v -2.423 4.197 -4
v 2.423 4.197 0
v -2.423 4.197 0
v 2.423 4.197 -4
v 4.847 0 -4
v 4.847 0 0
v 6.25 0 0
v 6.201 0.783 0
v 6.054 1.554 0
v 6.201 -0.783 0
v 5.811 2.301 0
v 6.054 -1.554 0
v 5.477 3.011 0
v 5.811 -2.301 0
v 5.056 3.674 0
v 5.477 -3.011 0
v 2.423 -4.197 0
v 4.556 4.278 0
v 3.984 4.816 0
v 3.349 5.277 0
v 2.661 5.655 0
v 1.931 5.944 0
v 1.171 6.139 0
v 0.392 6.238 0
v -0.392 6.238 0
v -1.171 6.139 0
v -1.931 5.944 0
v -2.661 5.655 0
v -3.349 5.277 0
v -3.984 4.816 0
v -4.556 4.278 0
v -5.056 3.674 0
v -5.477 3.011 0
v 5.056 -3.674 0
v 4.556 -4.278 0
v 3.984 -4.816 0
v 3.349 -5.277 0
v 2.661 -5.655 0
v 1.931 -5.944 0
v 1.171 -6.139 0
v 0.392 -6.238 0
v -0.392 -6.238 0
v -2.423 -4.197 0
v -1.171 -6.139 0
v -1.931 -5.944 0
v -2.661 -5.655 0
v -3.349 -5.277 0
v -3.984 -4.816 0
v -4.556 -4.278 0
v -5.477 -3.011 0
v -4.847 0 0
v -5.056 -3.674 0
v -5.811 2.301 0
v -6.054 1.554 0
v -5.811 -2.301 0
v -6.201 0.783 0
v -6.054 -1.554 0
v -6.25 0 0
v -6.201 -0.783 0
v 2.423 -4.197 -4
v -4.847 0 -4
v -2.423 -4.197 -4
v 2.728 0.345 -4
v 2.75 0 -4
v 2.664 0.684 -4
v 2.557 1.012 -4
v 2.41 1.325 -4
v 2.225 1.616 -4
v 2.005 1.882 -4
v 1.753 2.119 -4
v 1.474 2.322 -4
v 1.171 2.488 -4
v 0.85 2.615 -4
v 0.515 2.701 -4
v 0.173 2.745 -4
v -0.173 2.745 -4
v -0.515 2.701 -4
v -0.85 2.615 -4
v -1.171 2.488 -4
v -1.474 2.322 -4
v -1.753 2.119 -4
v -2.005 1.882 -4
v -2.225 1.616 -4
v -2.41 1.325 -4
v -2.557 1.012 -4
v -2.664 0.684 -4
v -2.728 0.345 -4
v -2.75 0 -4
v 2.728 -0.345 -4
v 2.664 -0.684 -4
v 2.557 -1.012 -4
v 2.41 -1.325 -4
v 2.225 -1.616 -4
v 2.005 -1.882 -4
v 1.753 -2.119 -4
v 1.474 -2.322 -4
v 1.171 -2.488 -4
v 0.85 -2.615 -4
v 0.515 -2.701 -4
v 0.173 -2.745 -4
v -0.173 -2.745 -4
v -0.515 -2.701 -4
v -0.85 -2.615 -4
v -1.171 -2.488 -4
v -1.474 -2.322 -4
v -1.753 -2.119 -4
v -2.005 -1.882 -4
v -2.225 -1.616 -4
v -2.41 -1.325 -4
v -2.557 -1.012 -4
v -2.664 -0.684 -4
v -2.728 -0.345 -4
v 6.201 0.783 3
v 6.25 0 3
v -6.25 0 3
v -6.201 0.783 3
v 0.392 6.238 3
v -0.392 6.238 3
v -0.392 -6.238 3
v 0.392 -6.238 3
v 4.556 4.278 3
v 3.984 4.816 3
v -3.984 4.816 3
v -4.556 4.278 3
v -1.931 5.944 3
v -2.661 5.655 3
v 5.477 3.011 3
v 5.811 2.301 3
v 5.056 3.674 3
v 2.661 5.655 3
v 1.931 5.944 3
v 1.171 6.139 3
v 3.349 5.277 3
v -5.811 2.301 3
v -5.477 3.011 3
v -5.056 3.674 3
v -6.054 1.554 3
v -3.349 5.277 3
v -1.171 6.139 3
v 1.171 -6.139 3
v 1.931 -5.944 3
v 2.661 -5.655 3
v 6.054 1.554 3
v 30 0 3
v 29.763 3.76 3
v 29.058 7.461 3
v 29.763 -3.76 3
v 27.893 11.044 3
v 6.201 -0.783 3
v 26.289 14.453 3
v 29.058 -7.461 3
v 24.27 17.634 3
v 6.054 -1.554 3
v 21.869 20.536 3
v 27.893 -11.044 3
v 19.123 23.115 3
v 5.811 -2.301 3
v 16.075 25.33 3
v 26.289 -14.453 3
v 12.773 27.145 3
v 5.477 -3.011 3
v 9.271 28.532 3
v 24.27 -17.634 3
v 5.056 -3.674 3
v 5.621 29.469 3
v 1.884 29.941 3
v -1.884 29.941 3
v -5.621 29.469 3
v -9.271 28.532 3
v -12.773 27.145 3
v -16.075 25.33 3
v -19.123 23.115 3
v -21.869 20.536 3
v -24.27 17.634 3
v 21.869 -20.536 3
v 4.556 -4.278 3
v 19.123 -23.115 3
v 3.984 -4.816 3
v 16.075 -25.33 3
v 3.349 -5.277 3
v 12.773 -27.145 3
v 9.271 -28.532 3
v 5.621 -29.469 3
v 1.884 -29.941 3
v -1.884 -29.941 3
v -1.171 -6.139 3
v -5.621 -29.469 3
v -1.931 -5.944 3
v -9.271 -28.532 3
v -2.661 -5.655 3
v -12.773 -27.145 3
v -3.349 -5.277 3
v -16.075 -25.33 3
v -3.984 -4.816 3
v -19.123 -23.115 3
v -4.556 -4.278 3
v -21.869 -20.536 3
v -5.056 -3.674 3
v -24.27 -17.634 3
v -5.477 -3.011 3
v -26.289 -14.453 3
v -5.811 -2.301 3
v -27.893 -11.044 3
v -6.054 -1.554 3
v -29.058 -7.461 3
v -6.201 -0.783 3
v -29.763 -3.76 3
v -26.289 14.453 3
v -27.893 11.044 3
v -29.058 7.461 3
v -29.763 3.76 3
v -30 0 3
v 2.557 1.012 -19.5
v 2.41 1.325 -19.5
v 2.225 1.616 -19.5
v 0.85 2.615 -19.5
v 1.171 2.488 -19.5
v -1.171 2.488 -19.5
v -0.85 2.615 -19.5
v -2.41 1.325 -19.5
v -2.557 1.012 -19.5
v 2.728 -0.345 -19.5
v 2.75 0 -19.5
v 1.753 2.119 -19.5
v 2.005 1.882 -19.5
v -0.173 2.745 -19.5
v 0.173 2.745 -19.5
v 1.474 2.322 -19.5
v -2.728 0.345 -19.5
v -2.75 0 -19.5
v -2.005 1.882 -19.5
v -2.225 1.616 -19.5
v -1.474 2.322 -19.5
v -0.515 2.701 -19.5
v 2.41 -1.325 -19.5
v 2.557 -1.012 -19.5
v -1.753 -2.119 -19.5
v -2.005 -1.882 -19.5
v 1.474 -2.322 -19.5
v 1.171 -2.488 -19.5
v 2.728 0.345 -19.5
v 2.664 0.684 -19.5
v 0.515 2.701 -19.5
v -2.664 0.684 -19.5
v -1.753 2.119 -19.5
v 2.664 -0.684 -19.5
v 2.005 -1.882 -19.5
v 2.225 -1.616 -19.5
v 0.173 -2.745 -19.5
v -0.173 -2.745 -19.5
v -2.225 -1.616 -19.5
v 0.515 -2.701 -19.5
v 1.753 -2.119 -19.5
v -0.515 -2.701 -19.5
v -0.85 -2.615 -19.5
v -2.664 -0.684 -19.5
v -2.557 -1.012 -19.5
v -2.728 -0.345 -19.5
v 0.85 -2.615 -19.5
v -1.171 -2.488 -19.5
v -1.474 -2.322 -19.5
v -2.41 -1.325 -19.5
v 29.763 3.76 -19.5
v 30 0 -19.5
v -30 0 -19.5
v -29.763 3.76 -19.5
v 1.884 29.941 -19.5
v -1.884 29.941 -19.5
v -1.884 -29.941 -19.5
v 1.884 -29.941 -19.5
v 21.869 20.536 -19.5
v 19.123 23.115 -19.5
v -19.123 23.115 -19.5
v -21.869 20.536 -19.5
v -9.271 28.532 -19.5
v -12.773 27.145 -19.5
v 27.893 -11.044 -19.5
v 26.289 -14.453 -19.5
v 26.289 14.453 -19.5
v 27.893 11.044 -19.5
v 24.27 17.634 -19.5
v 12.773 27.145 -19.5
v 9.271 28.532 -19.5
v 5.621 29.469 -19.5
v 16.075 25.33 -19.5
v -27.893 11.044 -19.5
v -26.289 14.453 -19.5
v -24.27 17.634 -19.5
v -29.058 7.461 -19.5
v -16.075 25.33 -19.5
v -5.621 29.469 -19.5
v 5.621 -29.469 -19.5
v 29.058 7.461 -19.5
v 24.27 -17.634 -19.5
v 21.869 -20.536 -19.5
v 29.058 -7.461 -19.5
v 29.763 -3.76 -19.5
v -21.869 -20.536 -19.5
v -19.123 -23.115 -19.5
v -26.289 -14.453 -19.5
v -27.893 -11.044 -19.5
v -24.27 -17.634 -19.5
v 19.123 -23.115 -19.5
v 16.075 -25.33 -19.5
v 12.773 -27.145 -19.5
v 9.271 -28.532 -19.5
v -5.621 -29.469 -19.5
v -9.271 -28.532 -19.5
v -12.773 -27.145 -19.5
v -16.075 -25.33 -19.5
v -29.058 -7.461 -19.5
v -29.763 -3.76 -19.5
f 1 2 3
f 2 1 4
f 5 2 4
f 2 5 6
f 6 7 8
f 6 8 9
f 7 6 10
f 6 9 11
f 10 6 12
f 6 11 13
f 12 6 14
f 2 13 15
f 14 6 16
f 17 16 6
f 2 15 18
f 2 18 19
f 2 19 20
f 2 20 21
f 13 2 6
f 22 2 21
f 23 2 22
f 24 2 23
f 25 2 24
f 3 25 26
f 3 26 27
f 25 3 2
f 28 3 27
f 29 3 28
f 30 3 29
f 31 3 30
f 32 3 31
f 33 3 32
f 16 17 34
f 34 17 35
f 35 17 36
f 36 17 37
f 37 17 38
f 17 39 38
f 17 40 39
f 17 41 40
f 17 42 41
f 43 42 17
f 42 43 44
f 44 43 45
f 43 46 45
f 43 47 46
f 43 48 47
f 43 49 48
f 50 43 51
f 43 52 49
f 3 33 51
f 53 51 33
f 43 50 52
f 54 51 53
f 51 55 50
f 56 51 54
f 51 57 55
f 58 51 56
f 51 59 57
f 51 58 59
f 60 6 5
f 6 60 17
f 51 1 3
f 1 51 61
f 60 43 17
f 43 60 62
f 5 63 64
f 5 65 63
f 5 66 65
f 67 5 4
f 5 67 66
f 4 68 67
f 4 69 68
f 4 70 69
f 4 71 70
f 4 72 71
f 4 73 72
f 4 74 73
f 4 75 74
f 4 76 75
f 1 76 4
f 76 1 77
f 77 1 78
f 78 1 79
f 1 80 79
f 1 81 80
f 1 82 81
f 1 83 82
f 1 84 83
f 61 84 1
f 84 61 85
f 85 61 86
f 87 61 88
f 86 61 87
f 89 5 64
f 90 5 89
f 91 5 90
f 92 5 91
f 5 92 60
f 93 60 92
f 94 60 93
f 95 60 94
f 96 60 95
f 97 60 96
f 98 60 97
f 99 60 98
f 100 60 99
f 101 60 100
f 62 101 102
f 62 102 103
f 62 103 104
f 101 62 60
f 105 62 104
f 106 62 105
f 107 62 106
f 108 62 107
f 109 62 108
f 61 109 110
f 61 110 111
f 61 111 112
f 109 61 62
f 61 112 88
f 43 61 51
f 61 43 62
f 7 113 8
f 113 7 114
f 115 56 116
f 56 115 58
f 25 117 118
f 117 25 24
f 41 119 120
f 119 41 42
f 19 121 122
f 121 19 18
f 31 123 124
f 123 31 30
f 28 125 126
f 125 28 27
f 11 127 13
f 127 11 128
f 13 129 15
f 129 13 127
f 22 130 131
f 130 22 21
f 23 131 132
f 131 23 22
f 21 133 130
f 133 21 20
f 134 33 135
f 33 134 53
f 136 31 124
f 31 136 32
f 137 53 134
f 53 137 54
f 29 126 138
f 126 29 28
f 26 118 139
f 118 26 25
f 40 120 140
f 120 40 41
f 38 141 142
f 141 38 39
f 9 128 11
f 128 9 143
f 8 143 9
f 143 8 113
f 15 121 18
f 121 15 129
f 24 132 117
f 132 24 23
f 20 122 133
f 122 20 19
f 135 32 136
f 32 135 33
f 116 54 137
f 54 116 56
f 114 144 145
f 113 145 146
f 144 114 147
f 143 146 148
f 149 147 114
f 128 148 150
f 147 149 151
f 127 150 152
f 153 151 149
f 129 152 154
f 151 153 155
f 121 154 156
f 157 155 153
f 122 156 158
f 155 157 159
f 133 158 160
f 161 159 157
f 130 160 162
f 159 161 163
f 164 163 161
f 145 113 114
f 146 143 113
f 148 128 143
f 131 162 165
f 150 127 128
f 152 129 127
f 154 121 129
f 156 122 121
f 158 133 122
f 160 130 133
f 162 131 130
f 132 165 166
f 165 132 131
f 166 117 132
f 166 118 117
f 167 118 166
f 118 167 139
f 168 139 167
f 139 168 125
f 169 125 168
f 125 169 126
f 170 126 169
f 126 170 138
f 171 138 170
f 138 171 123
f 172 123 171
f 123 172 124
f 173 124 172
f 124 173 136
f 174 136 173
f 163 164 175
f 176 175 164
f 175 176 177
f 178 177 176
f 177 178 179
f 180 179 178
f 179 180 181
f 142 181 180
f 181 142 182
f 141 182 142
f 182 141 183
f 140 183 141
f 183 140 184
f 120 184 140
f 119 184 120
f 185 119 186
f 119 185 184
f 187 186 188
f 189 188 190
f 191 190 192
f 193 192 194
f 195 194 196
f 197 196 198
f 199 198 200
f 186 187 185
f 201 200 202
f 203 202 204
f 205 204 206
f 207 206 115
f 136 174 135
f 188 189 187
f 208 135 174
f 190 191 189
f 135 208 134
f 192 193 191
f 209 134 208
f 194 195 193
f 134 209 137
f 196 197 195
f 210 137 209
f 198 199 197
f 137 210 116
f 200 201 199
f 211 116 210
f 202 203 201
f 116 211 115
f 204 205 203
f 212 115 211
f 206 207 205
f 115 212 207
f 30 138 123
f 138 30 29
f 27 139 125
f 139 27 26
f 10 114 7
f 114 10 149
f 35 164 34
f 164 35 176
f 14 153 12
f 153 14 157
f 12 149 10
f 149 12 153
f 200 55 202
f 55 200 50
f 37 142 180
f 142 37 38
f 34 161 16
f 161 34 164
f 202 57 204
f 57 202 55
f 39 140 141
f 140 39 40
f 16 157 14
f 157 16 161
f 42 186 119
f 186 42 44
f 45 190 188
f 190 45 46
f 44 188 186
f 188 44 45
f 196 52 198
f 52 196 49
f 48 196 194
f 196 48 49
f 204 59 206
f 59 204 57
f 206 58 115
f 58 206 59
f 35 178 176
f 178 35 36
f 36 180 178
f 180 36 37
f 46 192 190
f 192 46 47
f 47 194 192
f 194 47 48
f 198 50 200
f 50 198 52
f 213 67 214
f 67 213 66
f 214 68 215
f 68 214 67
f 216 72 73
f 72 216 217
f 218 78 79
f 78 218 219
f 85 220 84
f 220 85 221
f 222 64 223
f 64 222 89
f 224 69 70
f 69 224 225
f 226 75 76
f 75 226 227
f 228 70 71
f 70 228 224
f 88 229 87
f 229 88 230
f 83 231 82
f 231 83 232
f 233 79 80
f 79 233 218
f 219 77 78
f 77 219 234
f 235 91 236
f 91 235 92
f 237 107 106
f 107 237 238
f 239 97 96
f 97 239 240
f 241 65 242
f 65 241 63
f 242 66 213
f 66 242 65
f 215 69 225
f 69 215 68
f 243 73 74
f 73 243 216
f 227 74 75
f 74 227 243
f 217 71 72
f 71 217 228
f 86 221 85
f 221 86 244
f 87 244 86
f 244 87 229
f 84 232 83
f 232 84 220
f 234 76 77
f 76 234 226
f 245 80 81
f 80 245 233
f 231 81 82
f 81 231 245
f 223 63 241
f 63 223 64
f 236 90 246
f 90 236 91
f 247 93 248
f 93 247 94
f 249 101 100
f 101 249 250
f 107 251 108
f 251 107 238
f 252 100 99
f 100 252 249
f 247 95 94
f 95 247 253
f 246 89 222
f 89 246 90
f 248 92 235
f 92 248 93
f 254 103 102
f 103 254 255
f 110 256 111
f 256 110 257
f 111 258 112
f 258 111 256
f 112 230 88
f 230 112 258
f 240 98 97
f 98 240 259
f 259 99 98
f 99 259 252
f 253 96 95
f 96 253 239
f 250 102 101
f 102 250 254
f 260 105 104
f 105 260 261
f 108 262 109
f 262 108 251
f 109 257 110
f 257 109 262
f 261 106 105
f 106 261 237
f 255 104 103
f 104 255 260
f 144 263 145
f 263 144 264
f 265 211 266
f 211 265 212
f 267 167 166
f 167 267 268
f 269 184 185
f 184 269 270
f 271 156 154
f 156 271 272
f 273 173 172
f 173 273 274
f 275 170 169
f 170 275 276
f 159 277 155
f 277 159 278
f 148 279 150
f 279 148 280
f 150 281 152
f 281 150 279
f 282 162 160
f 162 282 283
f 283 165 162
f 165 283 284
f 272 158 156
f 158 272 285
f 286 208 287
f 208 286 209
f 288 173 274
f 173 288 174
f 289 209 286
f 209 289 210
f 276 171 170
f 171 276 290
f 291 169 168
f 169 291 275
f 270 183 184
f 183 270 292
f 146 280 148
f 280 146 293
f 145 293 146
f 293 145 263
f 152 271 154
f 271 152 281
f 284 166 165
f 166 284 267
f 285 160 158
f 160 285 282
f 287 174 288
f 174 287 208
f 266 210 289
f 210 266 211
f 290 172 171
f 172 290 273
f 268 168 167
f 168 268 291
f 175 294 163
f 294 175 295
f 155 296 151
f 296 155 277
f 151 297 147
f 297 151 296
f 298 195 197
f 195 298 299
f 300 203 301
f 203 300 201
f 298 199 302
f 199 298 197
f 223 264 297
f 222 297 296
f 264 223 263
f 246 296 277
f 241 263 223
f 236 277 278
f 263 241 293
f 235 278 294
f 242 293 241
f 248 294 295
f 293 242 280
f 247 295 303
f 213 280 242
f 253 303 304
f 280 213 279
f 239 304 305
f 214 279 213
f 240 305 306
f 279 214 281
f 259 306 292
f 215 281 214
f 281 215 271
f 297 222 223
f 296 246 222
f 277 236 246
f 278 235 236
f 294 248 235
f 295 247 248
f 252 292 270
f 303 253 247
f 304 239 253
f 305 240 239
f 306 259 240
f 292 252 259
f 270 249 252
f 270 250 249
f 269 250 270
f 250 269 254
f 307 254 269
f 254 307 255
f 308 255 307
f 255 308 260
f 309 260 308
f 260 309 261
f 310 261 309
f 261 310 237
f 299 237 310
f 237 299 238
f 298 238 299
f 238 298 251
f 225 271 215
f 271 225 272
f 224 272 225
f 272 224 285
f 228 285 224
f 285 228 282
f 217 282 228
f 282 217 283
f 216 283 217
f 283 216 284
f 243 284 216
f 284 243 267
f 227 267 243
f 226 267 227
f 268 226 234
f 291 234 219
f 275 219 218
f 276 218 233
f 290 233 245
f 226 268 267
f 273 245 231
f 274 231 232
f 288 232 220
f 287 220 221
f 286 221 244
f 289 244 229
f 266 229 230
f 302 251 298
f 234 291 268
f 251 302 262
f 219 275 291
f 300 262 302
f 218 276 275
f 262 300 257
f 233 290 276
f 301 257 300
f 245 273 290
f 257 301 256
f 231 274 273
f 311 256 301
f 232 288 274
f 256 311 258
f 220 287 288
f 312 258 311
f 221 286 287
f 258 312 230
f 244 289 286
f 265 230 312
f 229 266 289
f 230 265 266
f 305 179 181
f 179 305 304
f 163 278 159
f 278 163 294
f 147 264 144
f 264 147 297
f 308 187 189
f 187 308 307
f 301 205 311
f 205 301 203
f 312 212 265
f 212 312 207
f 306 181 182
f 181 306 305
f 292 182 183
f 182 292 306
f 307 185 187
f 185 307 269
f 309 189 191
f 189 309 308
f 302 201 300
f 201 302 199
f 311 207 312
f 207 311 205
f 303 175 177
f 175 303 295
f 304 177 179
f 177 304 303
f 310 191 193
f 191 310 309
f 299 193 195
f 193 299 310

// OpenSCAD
$fn = 50;

difference() {
	union() {
		translate(v = [0, 0, -19.5]) {
			cylinder(h = 22.5, r = 30.0);
		}
	}
	union() {
		translate(v = [0, 0, 0]) {
			rotate(a = [0, 0, 0]) {
				difference() {
					union() {
						translate(v = [0, 0, -4]) {
							linear_extrude(height = 4) {
								polygon(points = [[4.8468, 0.0], [2.4234000000000004, 4.197451927062417], [-2.423399999999999, 4.197451927062417], [-4.8468, 5.935618106107392e-16], [-2.423400000000002, -4.197451927062416], [2.423399999999997, -4.197451927062419]]);
							}
						}
					}
					union();
				}
			}
		}
		#cylinder(h = 3, r = 6.25);
		#translate(v = [0, 0, -100.0]) {
			cylinder(h = 200, r = 2.75);
		}
	}
}
